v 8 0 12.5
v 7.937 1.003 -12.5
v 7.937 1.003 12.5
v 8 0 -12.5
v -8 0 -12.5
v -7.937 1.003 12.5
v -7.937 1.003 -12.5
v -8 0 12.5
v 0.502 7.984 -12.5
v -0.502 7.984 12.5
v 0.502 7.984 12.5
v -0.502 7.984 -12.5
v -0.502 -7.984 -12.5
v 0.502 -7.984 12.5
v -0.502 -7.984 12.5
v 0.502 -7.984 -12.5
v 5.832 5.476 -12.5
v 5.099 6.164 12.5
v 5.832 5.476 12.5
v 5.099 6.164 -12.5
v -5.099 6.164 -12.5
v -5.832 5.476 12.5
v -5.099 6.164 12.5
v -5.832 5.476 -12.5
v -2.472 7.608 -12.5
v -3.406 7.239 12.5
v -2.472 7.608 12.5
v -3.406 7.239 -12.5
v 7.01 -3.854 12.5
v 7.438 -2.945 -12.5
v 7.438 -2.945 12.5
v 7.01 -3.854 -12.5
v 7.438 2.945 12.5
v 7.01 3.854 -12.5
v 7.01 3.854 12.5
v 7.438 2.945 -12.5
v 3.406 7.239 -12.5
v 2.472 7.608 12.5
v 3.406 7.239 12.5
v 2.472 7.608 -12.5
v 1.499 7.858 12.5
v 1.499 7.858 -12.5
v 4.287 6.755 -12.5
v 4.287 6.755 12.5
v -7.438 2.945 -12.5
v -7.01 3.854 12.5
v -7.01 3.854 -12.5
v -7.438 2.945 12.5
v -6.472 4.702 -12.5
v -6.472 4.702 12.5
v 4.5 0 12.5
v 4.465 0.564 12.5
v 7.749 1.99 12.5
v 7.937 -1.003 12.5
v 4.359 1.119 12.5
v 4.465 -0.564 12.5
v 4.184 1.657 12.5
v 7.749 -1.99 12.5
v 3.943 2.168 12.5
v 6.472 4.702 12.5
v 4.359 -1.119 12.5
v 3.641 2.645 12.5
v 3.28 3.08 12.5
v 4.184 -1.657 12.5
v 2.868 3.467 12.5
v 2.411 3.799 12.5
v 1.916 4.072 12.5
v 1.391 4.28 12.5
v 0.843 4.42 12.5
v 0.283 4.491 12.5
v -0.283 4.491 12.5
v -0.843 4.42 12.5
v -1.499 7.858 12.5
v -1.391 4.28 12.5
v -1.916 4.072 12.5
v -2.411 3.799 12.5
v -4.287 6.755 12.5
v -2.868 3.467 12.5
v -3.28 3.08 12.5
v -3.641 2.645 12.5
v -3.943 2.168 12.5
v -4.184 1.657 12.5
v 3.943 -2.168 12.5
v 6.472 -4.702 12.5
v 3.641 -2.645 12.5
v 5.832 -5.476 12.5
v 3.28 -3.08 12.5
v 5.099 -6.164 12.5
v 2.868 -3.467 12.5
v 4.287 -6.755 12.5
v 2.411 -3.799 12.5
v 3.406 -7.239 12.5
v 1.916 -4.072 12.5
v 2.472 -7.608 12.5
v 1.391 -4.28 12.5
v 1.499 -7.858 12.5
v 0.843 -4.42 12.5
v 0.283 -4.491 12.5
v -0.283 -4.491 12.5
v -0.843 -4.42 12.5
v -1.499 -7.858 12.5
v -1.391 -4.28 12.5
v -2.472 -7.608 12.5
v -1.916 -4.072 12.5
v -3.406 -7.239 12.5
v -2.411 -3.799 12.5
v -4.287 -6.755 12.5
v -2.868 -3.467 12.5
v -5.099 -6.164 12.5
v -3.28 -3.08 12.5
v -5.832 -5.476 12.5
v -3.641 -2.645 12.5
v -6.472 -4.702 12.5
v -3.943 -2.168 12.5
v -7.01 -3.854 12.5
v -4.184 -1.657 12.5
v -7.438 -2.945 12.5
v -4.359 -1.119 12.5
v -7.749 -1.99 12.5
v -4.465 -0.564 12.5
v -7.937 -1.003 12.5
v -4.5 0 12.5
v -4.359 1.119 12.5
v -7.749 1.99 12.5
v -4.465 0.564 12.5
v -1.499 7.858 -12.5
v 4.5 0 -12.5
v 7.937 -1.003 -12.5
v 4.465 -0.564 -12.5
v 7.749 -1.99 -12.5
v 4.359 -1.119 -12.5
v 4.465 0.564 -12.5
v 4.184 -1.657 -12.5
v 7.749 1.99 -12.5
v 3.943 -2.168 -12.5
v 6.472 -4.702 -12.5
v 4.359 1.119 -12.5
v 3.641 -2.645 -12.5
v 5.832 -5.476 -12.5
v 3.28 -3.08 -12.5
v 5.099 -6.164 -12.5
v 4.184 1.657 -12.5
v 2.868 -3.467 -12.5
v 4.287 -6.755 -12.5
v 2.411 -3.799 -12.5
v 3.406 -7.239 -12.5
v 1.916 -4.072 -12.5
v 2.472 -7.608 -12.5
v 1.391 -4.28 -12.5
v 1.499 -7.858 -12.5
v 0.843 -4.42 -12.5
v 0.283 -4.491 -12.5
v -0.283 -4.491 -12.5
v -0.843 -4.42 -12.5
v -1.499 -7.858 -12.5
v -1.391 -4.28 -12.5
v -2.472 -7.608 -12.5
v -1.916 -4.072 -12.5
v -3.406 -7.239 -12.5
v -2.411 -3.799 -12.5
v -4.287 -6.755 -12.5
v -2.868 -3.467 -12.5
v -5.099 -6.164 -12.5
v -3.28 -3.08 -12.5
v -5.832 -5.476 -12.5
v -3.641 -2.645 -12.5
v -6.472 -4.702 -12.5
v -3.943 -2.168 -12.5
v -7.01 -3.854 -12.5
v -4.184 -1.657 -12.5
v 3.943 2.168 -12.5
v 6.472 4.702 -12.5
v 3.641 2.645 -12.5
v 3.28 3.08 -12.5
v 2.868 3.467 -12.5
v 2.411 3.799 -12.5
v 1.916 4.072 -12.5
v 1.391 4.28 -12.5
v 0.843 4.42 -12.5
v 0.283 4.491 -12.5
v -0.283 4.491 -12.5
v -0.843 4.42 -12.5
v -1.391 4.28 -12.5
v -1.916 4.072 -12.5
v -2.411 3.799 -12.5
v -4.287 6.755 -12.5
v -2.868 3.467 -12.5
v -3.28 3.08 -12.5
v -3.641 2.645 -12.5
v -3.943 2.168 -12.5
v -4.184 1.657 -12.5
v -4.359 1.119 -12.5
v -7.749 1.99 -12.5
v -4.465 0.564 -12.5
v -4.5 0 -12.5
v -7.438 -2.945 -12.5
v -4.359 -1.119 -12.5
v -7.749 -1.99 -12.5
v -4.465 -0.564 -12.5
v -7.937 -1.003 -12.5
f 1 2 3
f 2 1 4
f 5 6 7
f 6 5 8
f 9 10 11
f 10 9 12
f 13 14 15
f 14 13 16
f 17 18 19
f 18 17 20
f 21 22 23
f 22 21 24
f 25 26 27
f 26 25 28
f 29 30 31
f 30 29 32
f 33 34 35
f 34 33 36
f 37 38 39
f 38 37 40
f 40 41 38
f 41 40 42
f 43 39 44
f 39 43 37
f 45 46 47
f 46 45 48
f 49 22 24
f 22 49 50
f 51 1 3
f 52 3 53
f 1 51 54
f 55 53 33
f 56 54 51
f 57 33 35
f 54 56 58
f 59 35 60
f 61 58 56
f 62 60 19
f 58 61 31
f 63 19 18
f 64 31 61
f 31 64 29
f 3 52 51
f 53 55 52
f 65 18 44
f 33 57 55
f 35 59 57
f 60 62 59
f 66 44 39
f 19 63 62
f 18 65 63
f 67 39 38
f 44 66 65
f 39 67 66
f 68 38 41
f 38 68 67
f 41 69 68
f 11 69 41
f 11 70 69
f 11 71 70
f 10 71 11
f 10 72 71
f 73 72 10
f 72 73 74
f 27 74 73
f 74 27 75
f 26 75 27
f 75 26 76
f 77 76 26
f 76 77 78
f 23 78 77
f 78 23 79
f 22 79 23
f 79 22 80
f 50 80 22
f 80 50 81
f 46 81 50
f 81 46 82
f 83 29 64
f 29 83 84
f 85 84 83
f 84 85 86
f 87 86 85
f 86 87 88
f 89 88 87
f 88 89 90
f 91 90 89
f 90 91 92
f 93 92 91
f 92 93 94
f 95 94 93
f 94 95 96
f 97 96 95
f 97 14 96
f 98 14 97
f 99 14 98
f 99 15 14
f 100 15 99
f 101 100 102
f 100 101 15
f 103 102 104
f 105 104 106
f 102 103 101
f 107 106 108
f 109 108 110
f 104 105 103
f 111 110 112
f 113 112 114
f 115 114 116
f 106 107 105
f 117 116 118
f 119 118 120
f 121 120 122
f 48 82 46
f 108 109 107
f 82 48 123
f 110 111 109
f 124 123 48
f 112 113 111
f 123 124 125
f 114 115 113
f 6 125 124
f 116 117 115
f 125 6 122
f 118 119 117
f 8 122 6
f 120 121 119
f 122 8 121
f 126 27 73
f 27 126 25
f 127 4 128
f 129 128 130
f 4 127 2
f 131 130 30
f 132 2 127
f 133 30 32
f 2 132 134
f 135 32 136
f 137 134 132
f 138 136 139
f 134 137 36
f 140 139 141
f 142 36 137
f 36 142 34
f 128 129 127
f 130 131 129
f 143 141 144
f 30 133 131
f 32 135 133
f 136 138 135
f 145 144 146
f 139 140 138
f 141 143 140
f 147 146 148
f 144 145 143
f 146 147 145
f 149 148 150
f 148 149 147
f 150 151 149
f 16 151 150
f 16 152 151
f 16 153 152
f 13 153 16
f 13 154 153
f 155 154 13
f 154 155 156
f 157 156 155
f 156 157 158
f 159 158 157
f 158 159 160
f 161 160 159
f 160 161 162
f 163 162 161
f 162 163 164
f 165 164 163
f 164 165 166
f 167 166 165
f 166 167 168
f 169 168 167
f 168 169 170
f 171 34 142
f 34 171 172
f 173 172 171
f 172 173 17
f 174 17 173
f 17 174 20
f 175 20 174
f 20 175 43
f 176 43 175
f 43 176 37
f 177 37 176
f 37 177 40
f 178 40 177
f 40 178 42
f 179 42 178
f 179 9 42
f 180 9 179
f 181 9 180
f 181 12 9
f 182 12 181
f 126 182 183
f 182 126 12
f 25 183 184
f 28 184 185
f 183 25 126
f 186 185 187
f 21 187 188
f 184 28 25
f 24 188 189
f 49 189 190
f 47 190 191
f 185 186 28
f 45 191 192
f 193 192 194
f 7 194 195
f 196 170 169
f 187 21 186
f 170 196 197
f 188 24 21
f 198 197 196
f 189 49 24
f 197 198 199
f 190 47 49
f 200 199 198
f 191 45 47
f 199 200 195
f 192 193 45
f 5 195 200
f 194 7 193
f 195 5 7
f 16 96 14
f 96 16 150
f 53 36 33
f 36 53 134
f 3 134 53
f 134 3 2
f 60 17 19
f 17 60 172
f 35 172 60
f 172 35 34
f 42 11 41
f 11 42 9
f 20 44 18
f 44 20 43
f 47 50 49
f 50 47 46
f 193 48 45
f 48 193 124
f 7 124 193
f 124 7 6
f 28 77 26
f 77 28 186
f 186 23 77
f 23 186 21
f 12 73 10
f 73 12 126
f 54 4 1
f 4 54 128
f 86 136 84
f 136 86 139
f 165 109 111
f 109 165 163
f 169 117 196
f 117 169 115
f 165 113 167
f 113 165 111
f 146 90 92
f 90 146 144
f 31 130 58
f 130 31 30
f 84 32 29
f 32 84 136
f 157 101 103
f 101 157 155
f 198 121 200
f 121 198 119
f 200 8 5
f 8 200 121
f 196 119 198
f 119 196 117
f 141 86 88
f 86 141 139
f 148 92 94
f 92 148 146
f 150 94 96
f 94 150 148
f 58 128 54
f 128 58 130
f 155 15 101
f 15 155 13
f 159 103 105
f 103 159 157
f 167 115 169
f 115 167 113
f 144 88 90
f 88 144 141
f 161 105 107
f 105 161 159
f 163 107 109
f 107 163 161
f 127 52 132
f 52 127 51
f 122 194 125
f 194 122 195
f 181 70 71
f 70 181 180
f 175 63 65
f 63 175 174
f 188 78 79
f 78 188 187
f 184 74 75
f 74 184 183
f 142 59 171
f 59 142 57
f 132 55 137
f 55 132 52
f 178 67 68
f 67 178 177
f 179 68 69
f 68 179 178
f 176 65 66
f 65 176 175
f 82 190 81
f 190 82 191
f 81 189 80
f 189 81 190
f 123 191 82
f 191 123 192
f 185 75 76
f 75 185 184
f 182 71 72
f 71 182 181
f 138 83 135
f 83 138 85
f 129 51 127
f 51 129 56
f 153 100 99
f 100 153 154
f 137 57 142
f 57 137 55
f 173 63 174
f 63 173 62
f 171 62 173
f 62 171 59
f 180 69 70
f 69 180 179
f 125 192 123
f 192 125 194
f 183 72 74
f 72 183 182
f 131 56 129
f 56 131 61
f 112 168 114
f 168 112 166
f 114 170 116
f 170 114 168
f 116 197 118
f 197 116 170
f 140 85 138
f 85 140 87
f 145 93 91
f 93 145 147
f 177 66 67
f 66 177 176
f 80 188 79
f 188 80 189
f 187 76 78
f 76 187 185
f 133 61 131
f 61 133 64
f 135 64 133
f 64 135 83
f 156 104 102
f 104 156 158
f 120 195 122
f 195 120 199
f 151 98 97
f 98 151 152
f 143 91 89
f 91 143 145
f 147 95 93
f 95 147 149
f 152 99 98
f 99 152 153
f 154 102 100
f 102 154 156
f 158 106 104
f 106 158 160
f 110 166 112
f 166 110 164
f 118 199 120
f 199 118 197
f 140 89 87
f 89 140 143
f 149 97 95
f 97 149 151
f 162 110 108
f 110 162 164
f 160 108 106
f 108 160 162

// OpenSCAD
$fn = 50;


difference() {
	union() {
		translate(v = [0, 0, -12.5000000000]) {
			cylinder(h = 25, r = 8.0000000000);
		}
	}
	union() {
		translate(v = [0, 0, -100.0000000000]) {
			cylinder(h = 200, r = 4.5000000000);
		}
	}
}
